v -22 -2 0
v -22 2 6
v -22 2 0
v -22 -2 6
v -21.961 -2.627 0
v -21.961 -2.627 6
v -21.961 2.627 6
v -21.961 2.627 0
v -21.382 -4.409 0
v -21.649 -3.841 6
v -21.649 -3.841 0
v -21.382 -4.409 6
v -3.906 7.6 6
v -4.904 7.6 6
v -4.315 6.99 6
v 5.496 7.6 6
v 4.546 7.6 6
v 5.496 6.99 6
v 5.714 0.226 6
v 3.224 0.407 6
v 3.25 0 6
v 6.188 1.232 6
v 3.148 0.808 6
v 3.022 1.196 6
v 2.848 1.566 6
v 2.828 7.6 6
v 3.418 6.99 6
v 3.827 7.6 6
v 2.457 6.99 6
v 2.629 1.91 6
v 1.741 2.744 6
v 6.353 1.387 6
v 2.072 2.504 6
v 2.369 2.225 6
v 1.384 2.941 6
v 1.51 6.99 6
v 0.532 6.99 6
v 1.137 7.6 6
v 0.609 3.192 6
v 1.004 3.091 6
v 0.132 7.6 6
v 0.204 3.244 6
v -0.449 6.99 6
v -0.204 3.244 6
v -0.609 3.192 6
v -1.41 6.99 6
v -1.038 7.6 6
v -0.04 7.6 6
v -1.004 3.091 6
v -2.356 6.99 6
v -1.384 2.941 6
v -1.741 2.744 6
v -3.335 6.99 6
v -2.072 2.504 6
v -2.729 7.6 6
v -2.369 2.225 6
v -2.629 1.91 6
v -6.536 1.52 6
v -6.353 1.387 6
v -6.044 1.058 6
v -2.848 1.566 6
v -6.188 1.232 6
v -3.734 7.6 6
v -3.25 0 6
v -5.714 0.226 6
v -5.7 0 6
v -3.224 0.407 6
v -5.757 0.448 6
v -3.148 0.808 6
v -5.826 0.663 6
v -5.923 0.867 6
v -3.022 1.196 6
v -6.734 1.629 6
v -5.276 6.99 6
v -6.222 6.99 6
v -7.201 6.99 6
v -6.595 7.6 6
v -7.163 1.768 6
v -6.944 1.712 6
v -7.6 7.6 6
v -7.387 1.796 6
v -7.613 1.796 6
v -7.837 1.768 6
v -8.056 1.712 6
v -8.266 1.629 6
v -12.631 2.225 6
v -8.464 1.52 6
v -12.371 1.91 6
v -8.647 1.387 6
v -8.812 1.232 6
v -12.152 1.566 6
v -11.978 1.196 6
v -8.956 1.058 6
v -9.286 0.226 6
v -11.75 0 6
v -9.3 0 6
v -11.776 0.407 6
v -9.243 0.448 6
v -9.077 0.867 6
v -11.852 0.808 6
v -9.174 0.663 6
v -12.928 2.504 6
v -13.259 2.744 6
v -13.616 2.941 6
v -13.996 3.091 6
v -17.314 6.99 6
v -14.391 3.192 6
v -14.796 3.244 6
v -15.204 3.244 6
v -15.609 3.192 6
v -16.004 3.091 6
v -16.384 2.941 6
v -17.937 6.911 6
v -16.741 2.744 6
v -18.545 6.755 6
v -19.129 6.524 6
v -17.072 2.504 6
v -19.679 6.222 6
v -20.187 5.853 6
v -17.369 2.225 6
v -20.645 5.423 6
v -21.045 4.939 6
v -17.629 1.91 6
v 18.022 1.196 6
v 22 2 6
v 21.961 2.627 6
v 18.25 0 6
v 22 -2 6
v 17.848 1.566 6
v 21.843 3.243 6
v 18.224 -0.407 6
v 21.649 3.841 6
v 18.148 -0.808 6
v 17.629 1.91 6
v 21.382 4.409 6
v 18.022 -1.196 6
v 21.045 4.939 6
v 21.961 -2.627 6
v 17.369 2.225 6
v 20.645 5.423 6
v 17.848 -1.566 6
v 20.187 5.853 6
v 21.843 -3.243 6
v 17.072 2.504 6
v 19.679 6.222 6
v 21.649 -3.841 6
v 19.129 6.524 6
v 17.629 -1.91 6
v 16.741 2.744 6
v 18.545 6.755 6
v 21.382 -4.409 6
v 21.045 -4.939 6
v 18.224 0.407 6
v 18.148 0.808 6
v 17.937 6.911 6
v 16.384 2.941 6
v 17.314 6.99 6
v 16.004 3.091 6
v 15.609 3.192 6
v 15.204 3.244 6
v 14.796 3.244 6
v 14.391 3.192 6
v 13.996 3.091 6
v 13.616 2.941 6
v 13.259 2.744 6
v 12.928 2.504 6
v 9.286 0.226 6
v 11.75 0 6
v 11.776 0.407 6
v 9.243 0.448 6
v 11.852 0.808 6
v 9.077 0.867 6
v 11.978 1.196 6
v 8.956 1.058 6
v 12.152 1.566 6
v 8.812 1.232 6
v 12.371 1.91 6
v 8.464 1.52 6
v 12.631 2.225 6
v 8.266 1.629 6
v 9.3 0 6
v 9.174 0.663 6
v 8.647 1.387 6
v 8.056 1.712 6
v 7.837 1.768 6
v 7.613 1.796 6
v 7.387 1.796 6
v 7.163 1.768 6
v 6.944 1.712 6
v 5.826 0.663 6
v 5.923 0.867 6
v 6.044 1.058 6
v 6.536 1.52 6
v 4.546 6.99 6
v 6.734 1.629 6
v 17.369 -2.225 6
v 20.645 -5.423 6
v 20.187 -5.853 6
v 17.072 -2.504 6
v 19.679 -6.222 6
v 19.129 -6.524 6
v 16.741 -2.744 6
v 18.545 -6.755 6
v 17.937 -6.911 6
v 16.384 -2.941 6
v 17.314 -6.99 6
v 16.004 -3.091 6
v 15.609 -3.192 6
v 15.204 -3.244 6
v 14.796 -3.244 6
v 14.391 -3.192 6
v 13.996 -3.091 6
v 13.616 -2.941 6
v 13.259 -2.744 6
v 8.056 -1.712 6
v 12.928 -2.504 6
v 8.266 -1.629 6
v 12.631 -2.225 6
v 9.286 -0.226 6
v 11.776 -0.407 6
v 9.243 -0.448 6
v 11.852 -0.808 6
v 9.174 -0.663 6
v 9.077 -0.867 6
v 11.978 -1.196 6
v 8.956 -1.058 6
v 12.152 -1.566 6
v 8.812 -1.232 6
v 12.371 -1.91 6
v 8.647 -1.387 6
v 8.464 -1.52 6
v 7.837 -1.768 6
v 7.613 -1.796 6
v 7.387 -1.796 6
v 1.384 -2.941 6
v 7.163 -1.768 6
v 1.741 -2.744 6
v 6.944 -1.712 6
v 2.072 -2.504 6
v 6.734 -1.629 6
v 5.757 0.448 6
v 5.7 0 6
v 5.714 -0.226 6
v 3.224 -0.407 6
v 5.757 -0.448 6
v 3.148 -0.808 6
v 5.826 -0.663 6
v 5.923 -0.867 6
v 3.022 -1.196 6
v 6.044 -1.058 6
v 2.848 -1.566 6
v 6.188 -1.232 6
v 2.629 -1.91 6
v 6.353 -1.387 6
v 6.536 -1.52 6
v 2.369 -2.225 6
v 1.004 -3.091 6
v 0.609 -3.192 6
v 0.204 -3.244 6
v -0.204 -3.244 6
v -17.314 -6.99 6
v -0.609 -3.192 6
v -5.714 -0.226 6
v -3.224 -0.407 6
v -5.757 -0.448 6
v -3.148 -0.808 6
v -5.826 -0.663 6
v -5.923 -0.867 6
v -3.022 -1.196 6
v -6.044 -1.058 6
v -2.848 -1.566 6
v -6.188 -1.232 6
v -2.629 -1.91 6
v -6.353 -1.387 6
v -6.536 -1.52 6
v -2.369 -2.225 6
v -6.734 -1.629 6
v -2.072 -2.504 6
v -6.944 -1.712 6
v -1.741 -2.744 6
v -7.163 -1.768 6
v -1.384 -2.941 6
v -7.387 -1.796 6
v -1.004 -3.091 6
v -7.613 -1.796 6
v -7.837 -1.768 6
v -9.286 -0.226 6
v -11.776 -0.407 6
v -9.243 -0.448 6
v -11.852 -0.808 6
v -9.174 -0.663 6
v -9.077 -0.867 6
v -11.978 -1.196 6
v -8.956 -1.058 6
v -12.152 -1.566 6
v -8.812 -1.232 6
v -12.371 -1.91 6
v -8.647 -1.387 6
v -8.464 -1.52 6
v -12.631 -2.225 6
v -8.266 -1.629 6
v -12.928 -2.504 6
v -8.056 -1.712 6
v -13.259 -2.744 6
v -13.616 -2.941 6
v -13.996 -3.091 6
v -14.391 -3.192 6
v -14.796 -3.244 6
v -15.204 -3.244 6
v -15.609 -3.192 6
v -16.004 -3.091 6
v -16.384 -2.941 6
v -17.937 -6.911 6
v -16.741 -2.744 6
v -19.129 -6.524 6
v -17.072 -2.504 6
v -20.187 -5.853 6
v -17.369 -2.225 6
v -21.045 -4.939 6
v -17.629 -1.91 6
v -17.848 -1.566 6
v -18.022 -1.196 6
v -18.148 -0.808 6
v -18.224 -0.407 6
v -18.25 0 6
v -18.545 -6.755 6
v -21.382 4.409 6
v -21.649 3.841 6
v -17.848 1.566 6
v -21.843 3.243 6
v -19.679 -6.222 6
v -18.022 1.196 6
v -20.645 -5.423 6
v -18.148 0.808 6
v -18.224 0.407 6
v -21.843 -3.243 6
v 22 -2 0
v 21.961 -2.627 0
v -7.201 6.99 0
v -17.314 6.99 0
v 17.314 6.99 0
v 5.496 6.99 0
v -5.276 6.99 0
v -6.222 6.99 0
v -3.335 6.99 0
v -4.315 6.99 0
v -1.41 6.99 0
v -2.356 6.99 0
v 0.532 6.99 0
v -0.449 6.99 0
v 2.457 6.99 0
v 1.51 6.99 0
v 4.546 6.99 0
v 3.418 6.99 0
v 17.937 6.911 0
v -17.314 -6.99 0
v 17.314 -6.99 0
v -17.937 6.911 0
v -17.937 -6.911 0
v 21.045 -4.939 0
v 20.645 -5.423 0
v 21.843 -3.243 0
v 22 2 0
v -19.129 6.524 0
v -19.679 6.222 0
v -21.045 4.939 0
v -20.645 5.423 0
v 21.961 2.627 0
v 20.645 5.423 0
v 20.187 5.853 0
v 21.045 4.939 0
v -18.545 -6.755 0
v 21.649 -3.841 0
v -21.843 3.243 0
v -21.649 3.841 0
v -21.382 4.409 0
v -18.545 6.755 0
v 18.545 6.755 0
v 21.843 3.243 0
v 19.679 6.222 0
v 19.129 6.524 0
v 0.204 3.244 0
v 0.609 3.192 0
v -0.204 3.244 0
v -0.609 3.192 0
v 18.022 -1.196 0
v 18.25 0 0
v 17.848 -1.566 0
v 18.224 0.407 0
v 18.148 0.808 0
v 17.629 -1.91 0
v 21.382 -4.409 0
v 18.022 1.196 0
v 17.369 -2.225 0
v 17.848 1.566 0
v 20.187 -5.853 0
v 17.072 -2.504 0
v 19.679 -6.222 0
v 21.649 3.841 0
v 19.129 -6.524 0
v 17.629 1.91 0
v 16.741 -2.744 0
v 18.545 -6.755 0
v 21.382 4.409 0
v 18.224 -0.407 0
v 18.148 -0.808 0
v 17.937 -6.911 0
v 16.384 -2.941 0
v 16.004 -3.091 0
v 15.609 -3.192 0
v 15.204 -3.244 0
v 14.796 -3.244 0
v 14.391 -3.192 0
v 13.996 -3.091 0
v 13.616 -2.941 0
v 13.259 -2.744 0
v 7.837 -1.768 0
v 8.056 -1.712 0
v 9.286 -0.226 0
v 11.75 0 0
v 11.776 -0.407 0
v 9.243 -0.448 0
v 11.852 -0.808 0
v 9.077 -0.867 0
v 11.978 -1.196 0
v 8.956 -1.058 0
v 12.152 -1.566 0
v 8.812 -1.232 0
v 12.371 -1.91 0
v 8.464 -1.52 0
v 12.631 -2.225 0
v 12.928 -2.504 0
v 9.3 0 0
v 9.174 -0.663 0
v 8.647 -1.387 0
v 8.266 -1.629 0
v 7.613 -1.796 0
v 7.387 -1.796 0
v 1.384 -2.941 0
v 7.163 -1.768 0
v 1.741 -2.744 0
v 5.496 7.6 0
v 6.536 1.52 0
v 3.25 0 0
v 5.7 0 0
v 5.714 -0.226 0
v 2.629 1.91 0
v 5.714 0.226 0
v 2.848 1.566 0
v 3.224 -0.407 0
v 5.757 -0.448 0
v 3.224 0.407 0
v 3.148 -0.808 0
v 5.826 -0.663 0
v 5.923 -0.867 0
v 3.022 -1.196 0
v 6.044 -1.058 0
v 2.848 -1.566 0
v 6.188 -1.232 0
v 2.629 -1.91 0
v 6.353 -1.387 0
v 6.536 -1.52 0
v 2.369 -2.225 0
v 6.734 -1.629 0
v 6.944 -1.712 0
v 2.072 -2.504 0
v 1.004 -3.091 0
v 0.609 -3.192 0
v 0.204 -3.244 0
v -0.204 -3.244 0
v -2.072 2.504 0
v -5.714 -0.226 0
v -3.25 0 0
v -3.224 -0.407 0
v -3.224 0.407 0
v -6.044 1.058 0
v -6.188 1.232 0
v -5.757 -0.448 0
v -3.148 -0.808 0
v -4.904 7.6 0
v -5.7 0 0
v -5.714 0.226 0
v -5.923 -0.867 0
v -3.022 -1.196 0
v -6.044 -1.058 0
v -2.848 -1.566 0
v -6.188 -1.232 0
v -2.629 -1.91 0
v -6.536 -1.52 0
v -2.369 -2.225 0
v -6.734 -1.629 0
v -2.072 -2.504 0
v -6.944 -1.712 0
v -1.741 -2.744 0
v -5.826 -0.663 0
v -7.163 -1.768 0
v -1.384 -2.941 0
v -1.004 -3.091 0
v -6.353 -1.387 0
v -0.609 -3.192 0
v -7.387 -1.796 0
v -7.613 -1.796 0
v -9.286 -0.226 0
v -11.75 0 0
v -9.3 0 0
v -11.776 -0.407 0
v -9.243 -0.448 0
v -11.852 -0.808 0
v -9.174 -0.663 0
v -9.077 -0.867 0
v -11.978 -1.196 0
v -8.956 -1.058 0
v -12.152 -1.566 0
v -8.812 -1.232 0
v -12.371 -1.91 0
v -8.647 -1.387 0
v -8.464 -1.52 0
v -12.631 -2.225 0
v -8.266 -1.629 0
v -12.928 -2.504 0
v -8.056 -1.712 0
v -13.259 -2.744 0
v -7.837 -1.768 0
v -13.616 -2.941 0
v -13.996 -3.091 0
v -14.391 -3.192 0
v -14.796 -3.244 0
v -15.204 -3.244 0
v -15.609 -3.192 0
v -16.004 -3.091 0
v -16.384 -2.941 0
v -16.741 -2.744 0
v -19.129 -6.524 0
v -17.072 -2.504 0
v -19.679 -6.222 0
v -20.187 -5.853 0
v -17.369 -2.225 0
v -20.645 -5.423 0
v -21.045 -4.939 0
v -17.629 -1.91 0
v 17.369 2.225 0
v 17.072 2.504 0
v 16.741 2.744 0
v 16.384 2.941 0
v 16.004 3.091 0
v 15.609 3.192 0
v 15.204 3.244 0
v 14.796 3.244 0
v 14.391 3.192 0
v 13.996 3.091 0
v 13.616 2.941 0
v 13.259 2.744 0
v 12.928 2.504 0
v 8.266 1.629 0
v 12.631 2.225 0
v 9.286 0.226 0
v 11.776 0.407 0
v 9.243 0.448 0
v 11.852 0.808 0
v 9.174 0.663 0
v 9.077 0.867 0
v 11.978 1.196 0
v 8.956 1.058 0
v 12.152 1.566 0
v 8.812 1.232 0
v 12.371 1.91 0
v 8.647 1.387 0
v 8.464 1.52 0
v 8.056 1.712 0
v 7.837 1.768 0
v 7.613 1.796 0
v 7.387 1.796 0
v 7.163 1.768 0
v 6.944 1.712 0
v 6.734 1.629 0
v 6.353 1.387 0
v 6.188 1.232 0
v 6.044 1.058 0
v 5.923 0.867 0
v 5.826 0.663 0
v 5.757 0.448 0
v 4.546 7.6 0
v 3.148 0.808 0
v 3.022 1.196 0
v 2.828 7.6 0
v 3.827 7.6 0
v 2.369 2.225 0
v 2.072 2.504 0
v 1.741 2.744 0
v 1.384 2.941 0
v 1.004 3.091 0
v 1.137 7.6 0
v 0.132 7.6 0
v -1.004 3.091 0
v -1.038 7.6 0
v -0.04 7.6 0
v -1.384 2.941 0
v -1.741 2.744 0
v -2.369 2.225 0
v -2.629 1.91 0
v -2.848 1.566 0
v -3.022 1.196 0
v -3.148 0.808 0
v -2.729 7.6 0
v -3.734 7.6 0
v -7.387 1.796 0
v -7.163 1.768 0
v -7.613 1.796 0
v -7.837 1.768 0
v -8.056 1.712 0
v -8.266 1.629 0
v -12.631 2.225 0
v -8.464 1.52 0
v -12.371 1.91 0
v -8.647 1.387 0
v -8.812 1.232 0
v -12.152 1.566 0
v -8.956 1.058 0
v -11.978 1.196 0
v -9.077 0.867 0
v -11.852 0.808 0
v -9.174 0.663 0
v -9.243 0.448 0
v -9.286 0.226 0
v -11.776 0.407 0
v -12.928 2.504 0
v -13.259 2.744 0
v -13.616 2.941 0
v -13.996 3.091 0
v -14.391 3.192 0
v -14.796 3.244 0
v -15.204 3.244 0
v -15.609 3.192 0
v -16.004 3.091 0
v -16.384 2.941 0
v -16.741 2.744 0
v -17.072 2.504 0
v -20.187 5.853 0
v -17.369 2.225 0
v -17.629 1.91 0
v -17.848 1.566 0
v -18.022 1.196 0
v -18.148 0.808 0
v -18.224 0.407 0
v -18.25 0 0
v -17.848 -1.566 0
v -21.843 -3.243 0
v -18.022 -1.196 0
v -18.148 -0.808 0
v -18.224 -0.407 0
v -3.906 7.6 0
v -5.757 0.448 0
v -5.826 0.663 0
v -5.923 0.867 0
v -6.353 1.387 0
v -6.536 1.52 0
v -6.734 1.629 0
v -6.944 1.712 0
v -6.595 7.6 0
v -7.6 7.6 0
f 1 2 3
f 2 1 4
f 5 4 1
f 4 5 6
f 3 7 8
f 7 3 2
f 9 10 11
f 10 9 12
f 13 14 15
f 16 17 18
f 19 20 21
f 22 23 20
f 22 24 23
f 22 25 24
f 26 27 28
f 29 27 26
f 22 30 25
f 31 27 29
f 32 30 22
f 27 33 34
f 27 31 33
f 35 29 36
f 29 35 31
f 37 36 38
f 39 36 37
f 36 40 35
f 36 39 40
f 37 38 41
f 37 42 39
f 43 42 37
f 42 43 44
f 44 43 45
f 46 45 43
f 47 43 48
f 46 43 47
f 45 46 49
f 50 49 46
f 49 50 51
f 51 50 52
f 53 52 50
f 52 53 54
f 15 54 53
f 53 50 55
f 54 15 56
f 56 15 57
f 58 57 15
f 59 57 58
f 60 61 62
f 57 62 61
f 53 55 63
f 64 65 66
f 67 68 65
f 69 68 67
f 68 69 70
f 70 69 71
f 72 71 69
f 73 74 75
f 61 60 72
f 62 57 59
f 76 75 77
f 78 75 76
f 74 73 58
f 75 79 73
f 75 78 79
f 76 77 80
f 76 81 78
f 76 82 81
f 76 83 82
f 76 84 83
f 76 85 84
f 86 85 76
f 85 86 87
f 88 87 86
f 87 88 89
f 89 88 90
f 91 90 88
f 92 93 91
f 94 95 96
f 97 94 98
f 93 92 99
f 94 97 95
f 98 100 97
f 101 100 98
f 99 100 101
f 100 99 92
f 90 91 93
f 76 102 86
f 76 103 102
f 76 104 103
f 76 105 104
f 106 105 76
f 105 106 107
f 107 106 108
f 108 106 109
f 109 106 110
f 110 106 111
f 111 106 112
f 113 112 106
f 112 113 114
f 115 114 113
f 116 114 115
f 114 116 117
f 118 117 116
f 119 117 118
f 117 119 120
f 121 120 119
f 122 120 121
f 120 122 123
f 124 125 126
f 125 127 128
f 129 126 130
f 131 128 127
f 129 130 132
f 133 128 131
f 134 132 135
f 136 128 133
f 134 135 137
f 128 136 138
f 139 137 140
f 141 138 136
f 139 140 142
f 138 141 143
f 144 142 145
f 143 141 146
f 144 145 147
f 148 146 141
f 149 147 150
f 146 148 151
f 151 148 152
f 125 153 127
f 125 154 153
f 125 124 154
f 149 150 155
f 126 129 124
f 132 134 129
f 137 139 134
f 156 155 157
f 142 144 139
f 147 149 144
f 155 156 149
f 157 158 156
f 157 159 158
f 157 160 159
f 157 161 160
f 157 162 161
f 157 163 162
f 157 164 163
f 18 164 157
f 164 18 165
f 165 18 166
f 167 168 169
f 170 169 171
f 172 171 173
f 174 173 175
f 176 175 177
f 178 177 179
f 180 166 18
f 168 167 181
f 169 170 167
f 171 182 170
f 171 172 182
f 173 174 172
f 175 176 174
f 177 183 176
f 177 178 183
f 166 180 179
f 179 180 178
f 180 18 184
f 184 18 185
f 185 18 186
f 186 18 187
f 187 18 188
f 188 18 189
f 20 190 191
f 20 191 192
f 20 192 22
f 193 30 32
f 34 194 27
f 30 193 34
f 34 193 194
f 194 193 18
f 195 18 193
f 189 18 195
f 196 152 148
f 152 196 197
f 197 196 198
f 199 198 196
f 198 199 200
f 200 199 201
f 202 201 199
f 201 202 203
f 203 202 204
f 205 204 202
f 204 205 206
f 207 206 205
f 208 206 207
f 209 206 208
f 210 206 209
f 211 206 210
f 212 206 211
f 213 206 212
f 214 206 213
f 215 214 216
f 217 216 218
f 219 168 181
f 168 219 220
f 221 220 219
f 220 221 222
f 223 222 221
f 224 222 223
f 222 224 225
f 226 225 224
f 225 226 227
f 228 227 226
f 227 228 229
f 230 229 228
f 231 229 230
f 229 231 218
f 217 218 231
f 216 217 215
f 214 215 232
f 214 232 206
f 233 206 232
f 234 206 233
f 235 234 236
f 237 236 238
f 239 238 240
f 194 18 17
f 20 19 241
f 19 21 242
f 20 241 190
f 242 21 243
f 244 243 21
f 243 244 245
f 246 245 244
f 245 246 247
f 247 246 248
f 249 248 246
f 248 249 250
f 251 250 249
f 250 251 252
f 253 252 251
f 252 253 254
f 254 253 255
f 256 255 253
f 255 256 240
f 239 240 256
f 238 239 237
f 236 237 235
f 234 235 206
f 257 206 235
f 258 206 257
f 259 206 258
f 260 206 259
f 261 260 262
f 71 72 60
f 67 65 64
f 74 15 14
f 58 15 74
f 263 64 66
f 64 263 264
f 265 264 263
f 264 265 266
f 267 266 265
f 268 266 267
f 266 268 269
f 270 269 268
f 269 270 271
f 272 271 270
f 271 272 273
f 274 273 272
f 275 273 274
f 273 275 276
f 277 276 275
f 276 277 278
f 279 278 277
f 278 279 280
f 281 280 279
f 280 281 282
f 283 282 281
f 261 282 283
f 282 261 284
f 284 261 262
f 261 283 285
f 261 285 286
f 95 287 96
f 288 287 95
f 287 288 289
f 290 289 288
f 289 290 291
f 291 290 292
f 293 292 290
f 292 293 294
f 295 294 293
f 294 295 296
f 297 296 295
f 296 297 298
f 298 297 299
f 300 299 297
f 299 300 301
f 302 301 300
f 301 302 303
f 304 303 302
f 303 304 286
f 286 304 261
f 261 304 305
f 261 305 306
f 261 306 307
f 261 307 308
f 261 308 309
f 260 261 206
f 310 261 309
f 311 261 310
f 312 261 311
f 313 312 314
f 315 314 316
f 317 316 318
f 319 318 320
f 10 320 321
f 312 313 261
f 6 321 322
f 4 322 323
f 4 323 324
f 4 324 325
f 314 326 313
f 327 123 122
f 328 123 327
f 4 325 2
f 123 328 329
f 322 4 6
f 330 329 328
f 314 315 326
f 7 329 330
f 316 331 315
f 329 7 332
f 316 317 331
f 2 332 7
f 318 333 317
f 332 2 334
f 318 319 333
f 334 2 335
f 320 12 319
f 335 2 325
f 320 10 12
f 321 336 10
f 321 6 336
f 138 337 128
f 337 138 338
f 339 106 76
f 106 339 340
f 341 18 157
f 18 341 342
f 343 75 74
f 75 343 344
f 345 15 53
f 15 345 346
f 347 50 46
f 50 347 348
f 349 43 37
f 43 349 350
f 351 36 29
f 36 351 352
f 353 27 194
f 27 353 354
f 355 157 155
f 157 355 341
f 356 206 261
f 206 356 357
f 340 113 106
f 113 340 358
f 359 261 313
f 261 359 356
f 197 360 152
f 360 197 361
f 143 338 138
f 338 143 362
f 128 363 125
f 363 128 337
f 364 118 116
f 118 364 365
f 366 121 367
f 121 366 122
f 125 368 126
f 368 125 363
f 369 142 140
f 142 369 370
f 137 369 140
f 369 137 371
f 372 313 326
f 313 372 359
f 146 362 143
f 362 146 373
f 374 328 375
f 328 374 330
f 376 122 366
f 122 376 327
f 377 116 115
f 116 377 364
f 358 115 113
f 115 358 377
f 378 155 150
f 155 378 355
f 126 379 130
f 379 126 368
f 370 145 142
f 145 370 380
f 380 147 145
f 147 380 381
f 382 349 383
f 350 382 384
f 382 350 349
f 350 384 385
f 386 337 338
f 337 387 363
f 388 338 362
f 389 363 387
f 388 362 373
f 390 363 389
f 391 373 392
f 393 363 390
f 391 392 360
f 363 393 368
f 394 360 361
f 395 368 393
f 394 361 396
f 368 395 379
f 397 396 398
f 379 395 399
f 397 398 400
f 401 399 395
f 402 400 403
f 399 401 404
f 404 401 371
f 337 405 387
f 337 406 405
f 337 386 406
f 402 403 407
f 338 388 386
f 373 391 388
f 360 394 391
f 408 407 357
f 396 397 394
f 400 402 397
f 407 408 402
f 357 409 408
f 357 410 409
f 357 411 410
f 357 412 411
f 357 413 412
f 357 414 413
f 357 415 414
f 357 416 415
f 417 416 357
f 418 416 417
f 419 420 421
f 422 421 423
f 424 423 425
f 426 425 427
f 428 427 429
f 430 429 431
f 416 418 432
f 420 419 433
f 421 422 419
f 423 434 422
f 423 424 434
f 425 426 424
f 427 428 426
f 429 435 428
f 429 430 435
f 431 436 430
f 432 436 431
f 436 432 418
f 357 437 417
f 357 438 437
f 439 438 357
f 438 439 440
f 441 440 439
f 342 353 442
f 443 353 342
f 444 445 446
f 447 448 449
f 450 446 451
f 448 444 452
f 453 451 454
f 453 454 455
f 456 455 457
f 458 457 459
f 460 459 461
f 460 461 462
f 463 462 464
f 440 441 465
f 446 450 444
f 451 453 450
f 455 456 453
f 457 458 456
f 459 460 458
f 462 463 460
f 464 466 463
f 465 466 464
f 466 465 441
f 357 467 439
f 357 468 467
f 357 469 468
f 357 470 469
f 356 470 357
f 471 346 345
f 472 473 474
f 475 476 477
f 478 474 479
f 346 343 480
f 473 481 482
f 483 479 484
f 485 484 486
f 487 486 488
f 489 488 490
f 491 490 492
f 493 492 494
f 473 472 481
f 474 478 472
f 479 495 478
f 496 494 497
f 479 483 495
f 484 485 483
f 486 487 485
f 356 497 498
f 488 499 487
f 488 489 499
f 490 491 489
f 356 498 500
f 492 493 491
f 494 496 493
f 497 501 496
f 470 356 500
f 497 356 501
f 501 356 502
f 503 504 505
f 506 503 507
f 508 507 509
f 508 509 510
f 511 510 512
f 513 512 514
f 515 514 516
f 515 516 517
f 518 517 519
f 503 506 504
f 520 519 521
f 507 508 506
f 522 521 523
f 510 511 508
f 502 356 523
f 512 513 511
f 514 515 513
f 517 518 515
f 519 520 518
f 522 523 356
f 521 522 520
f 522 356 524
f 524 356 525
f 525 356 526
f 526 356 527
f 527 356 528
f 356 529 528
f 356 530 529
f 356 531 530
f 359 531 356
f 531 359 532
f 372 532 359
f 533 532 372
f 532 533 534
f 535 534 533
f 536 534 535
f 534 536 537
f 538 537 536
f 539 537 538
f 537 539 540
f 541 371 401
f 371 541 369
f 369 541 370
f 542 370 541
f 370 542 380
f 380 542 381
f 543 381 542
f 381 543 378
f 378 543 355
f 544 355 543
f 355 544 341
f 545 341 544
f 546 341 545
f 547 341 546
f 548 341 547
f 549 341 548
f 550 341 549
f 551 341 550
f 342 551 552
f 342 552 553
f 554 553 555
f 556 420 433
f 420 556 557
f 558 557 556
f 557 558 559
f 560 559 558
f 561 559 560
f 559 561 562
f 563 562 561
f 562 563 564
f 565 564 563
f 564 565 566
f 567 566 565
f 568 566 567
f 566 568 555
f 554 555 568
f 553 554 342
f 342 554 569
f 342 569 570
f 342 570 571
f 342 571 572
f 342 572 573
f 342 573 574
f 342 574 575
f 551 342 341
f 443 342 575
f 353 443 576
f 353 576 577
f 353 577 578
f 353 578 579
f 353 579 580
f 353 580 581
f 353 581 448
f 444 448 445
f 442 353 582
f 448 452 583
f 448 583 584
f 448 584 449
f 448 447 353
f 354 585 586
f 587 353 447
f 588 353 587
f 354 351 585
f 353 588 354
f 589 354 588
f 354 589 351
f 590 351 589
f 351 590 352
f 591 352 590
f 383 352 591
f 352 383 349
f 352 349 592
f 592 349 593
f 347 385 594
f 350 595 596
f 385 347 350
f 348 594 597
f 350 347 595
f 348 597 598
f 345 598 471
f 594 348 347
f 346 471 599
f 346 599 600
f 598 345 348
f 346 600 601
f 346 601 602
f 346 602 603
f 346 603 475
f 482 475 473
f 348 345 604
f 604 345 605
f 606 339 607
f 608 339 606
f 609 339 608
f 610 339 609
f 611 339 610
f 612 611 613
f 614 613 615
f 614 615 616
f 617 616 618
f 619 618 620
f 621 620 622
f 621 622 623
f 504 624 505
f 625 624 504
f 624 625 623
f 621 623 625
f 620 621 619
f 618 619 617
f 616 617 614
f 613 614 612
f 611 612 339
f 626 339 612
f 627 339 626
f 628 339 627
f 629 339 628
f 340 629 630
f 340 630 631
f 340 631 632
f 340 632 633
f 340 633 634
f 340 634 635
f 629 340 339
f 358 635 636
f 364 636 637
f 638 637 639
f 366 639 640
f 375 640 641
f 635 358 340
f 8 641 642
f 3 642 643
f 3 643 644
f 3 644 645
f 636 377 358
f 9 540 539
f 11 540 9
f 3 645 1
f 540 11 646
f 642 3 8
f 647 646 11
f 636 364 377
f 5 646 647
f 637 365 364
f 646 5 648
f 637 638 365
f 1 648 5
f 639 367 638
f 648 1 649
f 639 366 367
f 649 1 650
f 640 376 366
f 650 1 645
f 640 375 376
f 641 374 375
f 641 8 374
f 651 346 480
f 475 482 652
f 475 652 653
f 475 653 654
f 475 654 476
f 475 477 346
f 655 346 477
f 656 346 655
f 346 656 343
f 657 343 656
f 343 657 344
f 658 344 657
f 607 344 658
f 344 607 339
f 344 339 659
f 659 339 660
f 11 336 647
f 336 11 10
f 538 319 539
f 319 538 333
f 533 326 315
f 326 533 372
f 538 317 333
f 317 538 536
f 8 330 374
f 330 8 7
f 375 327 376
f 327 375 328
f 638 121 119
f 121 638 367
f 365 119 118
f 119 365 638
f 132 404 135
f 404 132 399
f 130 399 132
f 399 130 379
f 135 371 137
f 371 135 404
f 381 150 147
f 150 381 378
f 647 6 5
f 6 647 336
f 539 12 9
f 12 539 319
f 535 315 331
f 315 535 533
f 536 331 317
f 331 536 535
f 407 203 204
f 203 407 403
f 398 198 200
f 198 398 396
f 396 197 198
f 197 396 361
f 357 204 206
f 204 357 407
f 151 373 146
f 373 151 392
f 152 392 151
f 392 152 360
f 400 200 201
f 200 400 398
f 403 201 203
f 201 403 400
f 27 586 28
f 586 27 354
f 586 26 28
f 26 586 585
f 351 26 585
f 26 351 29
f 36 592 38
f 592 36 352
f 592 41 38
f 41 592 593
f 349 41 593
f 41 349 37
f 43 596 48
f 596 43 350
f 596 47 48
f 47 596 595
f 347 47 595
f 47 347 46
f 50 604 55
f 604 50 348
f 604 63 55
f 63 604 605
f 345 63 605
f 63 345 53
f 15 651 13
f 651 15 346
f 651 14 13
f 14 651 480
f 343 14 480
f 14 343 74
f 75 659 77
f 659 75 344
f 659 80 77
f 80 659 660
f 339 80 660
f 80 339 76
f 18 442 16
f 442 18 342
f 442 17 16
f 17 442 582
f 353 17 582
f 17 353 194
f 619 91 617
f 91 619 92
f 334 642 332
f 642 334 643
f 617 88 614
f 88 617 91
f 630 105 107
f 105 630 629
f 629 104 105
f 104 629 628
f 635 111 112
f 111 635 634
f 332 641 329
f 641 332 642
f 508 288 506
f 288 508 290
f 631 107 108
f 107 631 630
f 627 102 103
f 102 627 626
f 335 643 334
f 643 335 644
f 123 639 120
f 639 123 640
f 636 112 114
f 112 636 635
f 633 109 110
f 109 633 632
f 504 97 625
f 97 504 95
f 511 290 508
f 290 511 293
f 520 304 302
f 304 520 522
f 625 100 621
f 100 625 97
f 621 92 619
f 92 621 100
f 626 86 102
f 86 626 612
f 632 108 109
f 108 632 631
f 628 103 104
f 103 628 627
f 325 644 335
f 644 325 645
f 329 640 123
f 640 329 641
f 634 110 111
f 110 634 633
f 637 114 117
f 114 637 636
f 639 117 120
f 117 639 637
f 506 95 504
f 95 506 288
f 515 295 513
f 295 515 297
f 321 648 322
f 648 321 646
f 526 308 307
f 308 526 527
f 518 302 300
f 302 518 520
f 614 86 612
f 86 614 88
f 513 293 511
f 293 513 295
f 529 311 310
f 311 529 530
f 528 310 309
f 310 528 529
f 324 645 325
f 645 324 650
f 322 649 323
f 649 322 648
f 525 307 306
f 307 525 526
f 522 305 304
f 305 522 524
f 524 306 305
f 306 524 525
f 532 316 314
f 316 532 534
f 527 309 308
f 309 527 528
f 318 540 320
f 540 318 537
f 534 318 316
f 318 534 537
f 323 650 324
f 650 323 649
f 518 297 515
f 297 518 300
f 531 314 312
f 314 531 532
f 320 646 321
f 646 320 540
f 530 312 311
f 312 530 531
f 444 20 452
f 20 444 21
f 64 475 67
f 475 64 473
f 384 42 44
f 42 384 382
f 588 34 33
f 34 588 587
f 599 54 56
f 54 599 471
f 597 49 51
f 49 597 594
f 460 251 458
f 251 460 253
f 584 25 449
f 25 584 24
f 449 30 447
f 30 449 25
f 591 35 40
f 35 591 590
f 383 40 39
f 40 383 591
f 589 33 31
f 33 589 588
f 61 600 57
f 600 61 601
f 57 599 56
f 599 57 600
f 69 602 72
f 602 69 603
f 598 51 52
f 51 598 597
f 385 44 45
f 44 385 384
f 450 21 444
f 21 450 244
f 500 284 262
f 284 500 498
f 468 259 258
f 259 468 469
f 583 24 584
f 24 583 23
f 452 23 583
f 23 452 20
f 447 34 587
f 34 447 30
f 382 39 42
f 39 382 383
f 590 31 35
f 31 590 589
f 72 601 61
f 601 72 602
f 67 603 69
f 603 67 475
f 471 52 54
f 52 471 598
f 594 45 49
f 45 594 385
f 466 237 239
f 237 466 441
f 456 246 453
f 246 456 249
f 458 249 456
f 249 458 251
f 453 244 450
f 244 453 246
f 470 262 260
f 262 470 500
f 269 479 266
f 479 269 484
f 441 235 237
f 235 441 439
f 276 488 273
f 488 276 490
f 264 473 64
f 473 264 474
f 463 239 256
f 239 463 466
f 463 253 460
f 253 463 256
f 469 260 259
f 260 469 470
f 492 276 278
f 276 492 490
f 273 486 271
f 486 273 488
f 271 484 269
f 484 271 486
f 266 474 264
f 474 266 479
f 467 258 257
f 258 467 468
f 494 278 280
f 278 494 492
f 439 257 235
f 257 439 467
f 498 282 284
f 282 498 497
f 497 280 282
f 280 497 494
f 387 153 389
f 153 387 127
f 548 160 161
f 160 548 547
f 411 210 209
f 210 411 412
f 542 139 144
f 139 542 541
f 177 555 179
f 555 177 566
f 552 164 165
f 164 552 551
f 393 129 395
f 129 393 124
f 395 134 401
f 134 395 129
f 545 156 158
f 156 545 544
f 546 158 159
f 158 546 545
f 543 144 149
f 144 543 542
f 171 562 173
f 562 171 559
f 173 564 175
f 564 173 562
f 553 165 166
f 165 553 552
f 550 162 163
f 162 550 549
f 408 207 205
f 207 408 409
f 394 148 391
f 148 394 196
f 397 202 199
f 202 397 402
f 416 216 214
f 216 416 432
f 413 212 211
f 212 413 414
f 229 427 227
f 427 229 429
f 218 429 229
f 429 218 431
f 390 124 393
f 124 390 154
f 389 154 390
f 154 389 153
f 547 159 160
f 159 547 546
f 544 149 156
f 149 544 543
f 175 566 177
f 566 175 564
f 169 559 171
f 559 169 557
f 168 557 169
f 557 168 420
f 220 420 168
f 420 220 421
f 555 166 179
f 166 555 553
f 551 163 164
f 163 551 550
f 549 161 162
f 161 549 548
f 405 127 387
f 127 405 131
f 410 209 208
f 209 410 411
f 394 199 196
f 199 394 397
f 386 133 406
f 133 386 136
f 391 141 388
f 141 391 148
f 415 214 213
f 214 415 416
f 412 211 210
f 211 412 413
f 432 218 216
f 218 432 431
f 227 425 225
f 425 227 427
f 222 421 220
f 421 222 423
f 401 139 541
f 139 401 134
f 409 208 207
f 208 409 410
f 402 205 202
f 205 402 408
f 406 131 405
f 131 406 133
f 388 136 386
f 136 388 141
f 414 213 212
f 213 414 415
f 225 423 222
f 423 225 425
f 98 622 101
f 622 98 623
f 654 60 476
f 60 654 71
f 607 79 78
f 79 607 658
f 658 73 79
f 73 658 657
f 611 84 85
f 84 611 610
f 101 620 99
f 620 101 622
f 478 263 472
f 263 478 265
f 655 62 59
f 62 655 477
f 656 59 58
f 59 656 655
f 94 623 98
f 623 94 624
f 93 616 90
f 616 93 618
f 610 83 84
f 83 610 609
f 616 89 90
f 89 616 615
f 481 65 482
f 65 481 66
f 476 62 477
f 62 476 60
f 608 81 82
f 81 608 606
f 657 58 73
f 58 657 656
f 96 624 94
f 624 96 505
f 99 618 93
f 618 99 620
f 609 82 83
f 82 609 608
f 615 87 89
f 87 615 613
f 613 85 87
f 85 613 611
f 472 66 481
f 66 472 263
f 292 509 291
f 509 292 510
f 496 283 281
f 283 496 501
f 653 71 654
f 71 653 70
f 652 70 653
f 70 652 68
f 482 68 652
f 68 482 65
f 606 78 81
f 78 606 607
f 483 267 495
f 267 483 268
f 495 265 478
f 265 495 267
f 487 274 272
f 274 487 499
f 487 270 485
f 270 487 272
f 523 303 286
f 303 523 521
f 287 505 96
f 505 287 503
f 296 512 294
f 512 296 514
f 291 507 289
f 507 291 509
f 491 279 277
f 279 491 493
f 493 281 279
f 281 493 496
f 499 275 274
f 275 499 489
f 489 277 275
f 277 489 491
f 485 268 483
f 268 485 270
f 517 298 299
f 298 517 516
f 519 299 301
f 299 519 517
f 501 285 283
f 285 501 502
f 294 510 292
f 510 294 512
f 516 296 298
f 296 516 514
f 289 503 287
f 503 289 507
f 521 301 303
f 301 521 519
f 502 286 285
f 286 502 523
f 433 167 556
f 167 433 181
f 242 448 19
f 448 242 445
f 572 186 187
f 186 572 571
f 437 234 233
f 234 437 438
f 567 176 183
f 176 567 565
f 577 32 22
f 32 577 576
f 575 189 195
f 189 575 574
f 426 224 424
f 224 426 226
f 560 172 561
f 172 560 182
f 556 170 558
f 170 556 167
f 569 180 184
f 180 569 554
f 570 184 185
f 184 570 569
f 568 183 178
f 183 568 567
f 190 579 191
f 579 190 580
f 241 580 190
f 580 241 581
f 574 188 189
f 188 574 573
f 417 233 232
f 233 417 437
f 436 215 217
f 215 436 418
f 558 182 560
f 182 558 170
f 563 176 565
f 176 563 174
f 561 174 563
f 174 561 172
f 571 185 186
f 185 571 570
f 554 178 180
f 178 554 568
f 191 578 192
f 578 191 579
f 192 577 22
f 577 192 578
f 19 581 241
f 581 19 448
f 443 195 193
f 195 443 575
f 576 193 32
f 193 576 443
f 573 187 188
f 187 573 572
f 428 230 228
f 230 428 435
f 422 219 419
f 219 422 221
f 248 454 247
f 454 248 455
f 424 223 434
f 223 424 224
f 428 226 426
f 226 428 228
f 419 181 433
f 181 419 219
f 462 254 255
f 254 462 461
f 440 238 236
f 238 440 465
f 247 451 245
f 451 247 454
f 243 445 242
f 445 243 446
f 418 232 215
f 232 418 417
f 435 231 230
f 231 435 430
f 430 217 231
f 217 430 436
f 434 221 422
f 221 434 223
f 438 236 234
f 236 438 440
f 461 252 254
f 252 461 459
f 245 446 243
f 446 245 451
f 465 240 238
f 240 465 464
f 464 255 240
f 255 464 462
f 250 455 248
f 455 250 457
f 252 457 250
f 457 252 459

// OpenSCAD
$fn = 50;


difference() {
	union() {
		hull() {
			translate(v = [-17.0000000000, 2.0000000000, 0]) {
				cylinder(h = 6, r = 5);
			}
			translate(v = [17.0000000000, 2.0000000000, 0]) {
				cylinder(h = 6, r = 5);
			}
			translate(v = [-17.0000000000, -2.0000000000, 0]) {
				cylinder(h = 6, r = 5);
			}
			translate(v = [17.0000000000, -2.0000000000, 0]) {
				cylinder(h = 6, r = 5);
			}
		}
		translate(v = [0, 7.5000000000, 0]) {
			linear_extrude(height = 6) {
				text(font = "DejaVu Sans Mono:style=Bold", halign = "center", size = 4.7500000000, text = "XXXL", valign = "top");
			}
		}
	}
	union() {
		translate(v = [-15.0000000000, 0.0000000000, 0]) {
			translate(v = [0, 0, -100]) {
				cylinder(h = 200, r = 3.2500000000);
			}
		}
		translate(v = [0, 0, -100]) {
			cylinder(h = 200, r = 3.2500000000);
		}
		translate(v = [15.0000000000, 0.0000000000, 0]) {
			translate(v = [0, 0, -100]) {
				cylinder(h = 200, r = 3.2500000000);
			}
		}
		translate(v = [-15.0000000000, 0.0000000000, 0]) {
			translate(v = [0, 0, -100]) {
				cylinder(h = 200, r = 1.8000000000);
			}
		}
		translate(v = [-7.5000000000, 0.0000000000, 0]) {
			translate(v = [0, 0, -100]) {
				cylinder(h = 200, r = 1.8000000000);
			}
		}
		translate(v = [0, 0, -100]) {
			cylinder(h = 200, r = 1.8000000000);
		}
		translate(v = [7.5000000000, 0.0000000000, 0]) {
			translate(v = [0, 0, -100]) {
				cylinder(h = 200, r = 1.8000000000);
			}
		}
		translate(v = [15.0000000000, 0.0000000000, 0]) {
			translate(v = [0, 0, -100]) {
				cylinder(h = 200, r = 1.8000000000);
			}
		}
	}
}
